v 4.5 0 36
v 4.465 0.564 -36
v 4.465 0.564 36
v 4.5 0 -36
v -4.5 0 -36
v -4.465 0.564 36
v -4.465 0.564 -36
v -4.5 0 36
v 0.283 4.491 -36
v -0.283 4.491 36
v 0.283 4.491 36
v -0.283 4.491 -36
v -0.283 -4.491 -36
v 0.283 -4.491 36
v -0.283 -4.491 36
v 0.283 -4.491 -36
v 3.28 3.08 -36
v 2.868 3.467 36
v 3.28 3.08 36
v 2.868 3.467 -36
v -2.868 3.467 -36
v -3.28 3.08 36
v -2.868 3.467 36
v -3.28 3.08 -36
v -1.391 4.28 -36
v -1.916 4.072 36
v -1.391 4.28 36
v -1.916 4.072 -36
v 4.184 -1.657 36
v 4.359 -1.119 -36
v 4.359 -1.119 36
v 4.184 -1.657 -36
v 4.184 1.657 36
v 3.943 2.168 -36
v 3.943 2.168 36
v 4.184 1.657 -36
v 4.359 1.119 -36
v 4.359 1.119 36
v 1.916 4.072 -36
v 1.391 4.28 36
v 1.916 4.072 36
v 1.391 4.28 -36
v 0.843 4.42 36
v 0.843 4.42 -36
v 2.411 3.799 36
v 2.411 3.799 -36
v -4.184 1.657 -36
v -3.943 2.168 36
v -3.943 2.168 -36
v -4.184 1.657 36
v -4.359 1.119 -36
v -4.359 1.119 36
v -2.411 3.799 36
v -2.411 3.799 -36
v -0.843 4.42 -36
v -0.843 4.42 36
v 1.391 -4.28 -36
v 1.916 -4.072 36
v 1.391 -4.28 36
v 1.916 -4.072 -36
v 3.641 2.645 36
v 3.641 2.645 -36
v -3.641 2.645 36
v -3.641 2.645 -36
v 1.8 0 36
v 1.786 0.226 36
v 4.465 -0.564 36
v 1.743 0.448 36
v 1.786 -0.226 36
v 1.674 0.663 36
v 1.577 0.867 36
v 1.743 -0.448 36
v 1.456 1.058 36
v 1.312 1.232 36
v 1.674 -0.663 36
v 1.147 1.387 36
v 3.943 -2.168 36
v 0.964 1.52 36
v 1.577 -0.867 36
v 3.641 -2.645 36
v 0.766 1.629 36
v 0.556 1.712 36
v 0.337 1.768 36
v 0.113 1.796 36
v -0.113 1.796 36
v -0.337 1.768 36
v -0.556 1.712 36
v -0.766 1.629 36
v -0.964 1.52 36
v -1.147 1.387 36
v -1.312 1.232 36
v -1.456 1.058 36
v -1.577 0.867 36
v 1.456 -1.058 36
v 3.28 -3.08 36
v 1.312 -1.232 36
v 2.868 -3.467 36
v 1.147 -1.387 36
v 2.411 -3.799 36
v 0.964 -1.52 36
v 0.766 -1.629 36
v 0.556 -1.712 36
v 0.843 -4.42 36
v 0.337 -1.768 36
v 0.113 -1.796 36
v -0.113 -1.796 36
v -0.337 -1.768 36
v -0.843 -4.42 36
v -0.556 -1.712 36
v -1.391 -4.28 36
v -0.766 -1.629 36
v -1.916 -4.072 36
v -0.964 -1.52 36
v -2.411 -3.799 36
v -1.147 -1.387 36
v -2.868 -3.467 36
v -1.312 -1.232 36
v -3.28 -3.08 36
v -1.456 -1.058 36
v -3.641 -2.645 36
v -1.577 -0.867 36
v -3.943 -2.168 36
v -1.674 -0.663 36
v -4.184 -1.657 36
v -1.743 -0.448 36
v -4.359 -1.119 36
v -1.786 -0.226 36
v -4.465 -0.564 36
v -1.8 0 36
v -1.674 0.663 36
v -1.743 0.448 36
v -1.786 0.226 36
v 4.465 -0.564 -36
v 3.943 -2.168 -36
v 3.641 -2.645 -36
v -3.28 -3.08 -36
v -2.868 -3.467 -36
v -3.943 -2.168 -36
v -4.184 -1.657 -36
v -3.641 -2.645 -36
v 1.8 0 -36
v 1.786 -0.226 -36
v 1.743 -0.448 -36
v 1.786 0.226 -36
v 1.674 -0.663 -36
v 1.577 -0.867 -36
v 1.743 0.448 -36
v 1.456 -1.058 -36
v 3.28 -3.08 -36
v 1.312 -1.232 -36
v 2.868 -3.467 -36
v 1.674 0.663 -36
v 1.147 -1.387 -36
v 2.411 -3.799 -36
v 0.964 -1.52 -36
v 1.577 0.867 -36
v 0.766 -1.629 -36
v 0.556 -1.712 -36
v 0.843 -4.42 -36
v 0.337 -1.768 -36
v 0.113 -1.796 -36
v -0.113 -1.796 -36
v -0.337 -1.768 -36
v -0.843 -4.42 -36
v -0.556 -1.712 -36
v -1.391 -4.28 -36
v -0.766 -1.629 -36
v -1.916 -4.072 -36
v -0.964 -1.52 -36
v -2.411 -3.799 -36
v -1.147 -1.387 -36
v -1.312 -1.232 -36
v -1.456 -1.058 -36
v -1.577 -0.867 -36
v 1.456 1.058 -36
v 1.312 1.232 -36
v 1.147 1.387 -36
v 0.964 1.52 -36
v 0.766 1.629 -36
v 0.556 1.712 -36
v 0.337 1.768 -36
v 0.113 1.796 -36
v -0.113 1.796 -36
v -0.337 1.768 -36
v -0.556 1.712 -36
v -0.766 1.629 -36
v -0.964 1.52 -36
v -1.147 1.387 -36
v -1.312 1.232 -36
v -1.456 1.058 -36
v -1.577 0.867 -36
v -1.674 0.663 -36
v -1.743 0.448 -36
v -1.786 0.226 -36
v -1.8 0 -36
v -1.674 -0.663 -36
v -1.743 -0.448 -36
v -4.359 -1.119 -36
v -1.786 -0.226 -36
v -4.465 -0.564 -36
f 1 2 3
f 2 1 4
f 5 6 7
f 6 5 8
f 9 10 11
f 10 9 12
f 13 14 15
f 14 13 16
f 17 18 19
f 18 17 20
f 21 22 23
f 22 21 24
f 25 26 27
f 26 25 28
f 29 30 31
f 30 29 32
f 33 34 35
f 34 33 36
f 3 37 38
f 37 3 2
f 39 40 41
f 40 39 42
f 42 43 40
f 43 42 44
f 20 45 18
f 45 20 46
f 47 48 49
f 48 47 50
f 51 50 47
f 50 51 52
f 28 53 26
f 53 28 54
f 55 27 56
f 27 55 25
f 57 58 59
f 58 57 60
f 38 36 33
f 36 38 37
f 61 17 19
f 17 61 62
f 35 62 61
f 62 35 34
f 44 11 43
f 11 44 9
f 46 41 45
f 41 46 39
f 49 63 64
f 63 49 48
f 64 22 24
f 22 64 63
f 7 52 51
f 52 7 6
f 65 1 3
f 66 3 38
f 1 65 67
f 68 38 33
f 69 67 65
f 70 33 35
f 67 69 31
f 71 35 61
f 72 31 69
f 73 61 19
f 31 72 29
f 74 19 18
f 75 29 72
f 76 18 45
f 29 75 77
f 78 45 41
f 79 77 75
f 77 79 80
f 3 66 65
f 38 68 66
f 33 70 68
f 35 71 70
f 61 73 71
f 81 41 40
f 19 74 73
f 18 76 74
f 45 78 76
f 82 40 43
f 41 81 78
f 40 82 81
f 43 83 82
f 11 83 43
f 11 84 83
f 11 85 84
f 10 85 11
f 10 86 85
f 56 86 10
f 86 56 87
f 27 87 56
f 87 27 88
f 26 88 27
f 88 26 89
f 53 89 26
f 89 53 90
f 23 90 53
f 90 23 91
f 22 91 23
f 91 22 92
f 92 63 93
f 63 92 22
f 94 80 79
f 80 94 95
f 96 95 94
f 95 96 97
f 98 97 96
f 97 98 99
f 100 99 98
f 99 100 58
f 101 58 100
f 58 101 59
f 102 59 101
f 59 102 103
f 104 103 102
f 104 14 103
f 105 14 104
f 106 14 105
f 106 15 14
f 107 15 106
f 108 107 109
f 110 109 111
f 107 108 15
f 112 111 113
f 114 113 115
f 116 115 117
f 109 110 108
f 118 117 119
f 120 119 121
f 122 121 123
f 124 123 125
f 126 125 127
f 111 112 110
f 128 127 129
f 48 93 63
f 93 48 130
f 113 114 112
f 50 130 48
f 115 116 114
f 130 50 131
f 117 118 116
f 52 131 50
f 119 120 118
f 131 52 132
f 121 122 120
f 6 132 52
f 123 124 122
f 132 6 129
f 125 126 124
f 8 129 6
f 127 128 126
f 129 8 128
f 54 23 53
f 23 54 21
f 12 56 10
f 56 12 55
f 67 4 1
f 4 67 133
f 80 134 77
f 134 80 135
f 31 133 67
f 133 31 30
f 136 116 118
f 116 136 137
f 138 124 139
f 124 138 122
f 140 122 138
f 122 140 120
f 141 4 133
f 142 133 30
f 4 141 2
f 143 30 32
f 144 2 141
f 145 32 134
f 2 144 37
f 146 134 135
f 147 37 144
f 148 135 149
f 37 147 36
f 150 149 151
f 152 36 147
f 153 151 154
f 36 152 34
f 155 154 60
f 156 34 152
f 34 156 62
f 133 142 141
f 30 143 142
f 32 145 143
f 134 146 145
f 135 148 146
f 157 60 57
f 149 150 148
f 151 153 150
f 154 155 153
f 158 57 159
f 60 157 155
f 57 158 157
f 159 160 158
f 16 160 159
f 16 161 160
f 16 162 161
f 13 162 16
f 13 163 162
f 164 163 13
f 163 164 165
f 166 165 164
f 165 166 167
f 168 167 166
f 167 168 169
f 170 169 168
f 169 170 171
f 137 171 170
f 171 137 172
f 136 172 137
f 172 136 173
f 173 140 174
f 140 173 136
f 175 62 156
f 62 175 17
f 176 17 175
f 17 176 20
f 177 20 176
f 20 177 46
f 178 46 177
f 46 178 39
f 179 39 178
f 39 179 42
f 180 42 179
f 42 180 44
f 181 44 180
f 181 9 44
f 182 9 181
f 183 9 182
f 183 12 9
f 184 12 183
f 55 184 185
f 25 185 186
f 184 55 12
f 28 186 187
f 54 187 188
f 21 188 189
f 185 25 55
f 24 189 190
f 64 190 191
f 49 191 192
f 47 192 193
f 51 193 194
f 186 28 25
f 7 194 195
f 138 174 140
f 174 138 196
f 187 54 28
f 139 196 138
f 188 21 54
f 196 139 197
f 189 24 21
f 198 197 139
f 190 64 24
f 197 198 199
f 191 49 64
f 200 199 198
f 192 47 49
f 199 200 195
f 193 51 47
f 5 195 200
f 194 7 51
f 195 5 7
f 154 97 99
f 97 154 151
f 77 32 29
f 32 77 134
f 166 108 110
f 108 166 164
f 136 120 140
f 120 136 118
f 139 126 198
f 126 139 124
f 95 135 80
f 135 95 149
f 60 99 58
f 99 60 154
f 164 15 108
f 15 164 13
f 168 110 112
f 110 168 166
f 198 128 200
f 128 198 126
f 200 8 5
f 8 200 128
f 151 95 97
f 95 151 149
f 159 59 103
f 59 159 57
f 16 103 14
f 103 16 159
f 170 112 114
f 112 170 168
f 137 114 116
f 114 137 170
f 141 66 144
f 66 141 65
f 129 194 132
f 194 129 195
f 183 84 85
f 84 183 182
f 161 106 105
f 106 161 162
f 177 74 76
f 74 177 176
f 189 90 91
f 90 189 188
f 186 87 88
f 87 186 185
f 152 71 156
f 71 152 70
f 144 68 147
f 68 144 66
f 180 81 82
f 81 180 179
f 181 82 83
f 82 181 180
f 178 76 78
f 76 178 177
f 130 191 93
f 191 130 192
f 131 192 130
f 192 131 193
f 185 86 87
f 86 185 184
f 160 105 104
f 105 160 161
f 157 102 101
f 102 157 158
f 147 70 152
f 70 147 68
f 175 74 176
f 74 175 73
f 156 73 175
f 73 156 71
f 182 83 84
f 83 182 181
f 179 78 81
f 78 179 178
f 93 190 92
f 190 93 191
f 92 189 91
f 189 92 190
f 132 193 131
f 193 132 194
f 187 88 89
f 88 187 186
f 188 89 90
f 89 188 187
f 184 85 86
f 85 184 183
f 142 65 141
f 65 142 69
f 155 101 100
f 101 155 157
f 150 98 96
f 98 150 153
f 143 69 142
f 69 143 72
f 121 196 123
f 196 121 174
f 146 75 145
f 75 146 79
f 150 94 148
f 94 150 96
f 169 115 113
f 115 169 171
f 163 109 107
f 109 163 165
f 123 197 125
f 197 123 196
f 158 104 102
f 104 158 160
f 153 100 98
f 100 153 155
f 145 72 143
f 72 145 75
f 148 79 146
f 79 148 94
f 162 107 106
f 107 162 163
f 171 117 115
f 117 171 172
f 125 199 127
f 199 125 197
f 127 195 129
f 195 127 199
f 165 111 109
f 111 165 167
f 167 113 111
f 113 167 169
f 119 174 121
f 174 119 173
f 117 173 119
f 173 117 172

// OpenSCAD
$fn = 50;


difference() {
	union() {
		translate(v = [0, 0, -36.0000000000]) {
			cylinder(h = 72, r = 4.5000000000);
		}
	}
	union() {
		translate(v = [0, 0, -100.0000000000]) {
			cylinder(h = 200, r = 1.8000000000);
		}
	}
}
